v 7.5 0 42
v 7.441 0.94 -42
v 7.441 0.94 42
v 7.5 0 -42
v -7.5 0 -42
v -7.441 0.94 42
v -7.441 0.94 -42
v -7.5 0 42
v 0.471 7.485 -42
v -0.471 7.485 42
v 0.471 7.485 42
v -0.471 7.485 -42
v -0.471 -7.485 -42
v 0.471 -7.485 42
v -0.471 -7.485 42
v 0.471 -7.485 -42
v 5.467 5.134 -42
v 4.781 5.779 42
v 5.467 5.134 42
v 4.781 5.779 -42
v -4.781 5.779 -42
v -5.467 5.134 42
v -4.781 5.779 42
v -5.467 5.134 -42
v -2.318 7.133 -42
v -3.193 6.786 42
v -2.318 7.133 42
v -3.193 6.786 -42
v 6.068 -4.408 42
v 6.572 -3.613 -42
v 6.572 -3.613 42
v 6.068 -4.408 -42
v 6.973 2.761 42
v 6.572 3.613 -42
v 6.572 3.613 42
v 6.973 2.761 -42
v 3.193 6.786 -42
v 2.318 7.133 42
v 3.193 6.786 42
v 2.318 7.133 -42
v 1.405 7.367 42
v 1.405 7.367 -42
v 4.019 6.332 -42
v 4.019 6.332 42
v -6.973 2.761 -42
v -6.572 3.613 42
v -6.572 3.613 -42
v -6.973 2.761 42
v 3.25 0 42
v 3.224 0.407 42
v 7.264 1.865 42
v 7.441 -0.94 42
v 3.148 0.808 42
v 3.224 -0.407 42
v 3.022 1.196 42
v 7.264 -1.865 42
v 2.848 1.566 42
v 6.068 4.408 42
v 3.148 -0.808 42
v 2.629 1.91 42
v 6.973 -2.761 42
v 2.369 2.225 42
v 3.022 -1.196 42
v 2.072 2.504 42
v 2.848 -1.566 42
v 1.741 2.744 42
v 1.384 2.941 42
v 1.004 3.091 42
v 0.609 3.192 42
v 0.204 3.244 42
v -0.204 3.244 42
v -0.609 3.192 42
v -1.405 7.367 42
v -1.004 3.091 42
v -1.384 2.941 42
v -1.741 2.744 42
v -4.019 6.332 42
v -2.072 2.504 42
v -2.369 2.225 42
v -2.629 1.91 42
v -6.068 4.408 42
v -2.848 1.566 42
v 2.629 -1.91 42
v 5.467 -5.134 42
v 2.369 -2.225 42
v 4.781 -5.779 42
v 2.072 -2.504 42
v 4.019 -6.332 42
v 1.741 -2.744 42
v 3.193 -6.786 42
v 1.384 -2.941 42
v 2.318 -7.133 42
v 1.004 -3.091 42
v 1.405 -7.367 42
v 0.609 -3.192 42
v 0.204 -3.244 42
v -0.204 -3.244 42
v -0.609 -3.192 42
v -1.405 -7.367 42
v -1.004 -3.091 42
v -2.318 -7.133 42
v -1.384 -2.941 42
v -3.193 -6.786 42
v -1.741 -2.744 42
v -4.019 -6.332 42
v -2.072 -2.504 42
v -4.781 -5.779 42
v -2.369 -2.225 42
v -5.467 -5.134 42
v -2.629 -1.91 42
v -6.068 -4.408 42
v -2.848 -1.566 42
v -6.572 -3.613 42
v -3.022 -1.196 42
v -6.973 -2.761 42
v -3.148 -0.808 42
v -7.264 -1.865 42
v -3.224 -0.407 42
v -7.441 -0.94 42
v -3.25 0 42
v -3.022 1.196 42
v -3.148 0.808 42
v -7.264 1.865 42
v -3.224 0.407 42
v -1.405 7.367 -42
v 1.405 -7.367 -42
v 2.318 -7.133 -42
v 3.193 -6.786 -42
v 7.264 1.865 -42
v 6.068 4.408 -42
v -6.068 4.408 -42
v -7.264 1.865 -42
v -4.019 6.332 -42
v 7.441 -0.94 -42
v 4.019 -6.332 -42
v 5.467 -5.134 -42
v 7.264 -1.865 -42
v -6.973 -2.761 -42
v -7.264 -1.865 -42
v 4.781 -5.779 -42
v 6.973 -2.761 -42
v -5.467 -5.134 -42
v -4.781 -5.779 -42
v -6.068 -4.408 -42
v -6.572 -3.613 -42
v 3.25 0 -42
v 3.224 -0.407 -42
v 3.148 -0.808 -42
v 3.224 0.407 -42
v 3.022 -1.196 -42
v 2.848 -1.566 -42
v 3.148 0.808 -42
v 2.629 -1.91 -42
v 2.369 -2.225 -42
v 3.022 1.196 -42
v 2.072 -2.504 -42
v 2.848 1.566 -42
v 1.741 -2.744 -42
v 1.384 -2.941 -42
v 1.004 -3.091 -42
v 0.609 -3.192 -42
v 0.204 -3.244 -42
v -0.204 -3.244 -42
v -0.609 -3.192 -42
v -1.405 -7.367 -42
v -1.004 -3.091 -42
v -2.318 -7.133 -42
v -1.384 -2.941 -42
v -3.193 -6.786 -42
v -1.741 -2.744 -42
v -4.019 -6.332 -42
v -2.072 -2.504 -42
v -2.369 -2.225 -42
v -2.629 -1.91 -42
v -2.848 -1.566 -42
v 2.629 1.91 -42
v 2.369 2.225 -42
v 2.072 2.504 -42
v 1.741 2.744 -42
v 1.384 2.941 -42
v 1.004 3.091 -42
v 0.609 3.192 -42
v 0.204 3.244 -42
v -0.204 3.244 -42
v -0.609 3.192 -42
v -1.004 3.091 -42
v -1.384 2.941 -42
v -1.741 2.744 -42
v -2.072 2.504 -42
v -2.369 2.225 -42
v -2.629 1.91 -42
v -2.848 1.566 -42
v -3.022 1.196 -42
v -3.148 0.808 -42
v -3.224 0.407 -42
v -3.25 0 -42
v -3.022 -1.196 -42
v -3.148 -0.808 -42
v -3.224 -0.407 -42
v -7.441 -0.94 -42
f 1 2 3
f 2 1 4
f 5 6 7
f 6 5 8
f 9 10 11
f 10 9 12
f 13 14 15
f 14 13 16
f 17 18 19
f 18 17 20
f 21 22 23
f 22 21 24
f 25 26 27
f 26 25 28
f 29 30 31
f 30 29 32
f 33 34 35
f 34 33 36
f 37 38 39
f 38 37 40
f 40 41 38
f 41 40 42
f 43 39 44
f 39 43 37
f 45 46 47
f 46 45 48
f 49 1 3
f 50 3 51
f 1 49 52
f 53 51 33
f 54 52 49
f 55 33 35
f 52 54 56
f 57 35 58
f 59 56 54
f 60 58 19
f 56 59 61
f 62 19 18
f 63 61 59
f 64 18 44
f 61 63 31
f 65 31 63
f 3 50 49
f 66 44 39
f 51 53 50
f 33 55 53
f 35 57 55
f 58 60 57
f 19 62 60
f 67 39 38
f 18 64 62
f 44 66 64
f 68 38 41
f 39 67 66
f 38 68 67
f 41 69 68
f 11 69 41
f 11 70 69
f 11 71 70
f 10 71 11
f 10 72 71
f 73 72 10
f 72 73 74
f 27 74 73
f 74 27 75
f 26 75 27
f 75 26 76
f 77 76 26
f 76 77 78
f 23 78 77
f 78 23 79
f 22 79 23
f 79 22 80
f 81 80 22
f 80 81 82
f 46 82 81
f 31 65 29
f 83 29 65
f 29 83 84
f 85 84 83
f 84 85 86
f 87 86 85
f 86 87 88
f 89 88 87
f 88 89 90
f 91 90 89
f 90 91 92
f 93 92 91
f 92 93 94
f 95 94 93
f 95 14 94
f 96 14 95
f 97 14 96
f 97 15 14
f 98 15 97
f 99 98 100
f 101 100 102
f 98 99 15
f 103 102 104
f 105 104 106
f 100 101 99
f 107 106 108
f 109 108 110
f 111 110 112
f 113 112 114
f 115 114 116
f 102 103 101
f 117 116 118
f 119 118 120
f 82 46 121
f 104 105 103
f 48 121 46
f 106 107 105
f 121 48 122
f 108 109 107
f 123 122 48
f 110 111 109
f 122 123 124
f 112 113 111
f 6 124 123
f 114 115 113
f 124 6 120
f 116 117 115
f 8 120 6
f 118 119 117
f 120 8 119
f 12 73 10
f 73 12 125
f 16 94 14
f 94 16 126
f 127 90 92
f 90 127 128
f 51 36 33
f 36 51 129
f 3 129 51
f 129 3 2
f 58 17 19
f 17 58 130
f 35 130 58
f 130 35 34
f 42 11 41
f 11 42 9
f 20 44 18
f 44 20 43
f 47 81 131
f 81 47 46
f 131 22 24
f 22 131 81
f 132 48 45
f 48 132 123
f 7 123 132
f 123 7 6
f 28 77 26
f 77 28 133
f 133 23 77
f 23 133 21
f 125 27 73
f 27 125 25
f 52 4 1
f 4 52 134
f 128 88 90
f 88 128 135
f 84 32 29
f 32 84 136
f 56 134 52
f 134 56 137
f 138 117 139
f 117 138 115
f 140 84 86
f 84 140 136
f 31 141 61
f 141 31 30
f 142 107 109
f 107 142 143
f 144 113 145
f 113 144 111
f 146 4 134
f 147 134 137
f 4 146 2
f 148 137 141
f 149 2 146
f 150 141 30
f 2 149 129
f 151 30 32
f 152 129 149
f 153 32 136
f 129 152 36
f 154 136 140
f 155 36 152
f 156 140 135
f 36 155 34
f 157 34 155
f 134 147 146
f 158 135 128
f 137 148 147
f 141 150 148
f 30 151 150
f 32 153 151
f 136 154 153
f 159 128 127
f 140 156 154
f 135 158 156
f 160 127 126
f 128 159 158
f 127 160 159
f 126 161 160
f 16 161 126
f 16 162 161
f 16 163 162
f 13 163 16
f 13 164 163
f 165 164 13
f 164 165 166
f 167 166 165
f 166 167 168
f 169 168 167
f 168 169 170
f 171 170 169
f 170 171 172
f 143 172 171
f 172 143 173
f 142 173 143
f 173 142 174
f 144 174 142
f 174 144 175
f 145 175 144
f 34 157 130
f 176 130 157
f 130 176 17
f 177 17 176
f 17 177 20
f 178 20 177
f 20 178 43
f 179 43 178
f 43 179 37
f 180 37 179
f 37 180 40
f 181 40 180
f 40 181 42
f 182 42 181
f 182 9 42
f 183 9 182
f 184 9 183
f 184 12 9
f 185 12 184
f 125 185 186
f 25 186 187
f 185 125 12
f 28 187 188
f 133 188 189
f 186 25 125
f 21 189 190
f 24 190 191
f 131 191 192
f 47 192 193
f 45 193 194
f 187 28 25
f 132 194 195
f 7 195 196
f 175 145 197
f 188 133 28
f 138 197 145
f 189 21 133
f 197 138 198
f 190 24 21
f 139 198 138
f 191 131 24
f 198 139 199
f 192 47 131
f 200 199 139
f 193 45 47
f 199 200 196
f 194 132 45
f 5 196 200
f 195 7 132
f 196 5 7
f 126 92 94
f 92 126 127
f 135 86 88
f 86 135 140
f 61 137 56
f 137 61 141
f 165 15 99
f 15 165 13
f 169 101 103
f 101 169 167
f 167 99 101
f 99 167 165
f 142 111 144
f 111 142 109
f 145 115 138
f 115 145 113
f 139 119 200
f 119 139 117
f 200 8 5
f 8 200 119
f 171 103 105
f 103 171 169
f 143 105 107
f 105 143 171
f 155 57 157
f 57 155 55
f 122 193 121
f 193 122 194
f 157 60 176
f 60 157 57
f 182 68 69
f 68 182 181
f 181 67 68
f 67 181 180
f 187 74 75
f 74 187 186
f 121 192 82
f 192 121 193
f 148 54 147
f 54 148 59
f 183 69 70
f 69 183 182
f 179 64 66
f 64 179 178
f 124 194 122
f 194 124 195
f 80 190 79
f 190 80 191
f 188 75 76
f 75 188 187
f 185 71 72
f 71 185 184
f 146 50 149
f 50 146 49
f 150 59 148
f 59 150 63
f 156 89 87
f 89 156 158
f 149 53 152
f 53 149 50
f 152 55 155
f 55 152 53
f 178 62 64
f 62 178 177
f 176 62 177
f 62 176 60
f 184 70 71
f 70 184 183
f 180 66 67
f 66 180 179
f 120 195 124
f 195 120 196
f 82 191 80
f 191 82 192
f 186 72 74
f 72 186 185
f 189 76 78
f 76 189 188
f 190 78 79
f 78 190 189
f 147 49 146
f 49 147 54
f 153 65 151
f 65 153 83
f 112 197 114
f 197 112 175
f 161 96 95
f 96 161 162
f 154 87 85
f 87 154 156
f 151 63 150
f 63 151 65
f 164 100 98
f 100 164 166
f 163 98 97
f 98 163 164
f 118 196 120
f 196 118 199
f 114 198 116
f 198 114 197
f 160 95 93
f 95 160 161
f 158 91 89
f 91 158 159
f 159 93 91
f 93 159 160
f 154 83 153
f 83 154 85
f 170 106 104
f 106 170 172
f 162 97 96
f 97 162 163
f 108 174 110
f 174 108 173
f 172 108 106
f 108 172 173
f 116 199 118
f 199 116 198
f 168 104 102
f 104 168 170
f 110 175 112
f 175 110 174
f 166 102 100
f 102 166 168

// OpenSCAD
$fn = 50;


difference() {
	union() {
		translate(v = [0, 0, -42.0000000000]) {
			cylinder(h = 84, r = 7.5000000000);
		}
	}
	union() {
		translate(v = [0, 0, -100.0000000000]) {
			cylinder(h = 200, r = 3.2500000000);
		}
	}
}
